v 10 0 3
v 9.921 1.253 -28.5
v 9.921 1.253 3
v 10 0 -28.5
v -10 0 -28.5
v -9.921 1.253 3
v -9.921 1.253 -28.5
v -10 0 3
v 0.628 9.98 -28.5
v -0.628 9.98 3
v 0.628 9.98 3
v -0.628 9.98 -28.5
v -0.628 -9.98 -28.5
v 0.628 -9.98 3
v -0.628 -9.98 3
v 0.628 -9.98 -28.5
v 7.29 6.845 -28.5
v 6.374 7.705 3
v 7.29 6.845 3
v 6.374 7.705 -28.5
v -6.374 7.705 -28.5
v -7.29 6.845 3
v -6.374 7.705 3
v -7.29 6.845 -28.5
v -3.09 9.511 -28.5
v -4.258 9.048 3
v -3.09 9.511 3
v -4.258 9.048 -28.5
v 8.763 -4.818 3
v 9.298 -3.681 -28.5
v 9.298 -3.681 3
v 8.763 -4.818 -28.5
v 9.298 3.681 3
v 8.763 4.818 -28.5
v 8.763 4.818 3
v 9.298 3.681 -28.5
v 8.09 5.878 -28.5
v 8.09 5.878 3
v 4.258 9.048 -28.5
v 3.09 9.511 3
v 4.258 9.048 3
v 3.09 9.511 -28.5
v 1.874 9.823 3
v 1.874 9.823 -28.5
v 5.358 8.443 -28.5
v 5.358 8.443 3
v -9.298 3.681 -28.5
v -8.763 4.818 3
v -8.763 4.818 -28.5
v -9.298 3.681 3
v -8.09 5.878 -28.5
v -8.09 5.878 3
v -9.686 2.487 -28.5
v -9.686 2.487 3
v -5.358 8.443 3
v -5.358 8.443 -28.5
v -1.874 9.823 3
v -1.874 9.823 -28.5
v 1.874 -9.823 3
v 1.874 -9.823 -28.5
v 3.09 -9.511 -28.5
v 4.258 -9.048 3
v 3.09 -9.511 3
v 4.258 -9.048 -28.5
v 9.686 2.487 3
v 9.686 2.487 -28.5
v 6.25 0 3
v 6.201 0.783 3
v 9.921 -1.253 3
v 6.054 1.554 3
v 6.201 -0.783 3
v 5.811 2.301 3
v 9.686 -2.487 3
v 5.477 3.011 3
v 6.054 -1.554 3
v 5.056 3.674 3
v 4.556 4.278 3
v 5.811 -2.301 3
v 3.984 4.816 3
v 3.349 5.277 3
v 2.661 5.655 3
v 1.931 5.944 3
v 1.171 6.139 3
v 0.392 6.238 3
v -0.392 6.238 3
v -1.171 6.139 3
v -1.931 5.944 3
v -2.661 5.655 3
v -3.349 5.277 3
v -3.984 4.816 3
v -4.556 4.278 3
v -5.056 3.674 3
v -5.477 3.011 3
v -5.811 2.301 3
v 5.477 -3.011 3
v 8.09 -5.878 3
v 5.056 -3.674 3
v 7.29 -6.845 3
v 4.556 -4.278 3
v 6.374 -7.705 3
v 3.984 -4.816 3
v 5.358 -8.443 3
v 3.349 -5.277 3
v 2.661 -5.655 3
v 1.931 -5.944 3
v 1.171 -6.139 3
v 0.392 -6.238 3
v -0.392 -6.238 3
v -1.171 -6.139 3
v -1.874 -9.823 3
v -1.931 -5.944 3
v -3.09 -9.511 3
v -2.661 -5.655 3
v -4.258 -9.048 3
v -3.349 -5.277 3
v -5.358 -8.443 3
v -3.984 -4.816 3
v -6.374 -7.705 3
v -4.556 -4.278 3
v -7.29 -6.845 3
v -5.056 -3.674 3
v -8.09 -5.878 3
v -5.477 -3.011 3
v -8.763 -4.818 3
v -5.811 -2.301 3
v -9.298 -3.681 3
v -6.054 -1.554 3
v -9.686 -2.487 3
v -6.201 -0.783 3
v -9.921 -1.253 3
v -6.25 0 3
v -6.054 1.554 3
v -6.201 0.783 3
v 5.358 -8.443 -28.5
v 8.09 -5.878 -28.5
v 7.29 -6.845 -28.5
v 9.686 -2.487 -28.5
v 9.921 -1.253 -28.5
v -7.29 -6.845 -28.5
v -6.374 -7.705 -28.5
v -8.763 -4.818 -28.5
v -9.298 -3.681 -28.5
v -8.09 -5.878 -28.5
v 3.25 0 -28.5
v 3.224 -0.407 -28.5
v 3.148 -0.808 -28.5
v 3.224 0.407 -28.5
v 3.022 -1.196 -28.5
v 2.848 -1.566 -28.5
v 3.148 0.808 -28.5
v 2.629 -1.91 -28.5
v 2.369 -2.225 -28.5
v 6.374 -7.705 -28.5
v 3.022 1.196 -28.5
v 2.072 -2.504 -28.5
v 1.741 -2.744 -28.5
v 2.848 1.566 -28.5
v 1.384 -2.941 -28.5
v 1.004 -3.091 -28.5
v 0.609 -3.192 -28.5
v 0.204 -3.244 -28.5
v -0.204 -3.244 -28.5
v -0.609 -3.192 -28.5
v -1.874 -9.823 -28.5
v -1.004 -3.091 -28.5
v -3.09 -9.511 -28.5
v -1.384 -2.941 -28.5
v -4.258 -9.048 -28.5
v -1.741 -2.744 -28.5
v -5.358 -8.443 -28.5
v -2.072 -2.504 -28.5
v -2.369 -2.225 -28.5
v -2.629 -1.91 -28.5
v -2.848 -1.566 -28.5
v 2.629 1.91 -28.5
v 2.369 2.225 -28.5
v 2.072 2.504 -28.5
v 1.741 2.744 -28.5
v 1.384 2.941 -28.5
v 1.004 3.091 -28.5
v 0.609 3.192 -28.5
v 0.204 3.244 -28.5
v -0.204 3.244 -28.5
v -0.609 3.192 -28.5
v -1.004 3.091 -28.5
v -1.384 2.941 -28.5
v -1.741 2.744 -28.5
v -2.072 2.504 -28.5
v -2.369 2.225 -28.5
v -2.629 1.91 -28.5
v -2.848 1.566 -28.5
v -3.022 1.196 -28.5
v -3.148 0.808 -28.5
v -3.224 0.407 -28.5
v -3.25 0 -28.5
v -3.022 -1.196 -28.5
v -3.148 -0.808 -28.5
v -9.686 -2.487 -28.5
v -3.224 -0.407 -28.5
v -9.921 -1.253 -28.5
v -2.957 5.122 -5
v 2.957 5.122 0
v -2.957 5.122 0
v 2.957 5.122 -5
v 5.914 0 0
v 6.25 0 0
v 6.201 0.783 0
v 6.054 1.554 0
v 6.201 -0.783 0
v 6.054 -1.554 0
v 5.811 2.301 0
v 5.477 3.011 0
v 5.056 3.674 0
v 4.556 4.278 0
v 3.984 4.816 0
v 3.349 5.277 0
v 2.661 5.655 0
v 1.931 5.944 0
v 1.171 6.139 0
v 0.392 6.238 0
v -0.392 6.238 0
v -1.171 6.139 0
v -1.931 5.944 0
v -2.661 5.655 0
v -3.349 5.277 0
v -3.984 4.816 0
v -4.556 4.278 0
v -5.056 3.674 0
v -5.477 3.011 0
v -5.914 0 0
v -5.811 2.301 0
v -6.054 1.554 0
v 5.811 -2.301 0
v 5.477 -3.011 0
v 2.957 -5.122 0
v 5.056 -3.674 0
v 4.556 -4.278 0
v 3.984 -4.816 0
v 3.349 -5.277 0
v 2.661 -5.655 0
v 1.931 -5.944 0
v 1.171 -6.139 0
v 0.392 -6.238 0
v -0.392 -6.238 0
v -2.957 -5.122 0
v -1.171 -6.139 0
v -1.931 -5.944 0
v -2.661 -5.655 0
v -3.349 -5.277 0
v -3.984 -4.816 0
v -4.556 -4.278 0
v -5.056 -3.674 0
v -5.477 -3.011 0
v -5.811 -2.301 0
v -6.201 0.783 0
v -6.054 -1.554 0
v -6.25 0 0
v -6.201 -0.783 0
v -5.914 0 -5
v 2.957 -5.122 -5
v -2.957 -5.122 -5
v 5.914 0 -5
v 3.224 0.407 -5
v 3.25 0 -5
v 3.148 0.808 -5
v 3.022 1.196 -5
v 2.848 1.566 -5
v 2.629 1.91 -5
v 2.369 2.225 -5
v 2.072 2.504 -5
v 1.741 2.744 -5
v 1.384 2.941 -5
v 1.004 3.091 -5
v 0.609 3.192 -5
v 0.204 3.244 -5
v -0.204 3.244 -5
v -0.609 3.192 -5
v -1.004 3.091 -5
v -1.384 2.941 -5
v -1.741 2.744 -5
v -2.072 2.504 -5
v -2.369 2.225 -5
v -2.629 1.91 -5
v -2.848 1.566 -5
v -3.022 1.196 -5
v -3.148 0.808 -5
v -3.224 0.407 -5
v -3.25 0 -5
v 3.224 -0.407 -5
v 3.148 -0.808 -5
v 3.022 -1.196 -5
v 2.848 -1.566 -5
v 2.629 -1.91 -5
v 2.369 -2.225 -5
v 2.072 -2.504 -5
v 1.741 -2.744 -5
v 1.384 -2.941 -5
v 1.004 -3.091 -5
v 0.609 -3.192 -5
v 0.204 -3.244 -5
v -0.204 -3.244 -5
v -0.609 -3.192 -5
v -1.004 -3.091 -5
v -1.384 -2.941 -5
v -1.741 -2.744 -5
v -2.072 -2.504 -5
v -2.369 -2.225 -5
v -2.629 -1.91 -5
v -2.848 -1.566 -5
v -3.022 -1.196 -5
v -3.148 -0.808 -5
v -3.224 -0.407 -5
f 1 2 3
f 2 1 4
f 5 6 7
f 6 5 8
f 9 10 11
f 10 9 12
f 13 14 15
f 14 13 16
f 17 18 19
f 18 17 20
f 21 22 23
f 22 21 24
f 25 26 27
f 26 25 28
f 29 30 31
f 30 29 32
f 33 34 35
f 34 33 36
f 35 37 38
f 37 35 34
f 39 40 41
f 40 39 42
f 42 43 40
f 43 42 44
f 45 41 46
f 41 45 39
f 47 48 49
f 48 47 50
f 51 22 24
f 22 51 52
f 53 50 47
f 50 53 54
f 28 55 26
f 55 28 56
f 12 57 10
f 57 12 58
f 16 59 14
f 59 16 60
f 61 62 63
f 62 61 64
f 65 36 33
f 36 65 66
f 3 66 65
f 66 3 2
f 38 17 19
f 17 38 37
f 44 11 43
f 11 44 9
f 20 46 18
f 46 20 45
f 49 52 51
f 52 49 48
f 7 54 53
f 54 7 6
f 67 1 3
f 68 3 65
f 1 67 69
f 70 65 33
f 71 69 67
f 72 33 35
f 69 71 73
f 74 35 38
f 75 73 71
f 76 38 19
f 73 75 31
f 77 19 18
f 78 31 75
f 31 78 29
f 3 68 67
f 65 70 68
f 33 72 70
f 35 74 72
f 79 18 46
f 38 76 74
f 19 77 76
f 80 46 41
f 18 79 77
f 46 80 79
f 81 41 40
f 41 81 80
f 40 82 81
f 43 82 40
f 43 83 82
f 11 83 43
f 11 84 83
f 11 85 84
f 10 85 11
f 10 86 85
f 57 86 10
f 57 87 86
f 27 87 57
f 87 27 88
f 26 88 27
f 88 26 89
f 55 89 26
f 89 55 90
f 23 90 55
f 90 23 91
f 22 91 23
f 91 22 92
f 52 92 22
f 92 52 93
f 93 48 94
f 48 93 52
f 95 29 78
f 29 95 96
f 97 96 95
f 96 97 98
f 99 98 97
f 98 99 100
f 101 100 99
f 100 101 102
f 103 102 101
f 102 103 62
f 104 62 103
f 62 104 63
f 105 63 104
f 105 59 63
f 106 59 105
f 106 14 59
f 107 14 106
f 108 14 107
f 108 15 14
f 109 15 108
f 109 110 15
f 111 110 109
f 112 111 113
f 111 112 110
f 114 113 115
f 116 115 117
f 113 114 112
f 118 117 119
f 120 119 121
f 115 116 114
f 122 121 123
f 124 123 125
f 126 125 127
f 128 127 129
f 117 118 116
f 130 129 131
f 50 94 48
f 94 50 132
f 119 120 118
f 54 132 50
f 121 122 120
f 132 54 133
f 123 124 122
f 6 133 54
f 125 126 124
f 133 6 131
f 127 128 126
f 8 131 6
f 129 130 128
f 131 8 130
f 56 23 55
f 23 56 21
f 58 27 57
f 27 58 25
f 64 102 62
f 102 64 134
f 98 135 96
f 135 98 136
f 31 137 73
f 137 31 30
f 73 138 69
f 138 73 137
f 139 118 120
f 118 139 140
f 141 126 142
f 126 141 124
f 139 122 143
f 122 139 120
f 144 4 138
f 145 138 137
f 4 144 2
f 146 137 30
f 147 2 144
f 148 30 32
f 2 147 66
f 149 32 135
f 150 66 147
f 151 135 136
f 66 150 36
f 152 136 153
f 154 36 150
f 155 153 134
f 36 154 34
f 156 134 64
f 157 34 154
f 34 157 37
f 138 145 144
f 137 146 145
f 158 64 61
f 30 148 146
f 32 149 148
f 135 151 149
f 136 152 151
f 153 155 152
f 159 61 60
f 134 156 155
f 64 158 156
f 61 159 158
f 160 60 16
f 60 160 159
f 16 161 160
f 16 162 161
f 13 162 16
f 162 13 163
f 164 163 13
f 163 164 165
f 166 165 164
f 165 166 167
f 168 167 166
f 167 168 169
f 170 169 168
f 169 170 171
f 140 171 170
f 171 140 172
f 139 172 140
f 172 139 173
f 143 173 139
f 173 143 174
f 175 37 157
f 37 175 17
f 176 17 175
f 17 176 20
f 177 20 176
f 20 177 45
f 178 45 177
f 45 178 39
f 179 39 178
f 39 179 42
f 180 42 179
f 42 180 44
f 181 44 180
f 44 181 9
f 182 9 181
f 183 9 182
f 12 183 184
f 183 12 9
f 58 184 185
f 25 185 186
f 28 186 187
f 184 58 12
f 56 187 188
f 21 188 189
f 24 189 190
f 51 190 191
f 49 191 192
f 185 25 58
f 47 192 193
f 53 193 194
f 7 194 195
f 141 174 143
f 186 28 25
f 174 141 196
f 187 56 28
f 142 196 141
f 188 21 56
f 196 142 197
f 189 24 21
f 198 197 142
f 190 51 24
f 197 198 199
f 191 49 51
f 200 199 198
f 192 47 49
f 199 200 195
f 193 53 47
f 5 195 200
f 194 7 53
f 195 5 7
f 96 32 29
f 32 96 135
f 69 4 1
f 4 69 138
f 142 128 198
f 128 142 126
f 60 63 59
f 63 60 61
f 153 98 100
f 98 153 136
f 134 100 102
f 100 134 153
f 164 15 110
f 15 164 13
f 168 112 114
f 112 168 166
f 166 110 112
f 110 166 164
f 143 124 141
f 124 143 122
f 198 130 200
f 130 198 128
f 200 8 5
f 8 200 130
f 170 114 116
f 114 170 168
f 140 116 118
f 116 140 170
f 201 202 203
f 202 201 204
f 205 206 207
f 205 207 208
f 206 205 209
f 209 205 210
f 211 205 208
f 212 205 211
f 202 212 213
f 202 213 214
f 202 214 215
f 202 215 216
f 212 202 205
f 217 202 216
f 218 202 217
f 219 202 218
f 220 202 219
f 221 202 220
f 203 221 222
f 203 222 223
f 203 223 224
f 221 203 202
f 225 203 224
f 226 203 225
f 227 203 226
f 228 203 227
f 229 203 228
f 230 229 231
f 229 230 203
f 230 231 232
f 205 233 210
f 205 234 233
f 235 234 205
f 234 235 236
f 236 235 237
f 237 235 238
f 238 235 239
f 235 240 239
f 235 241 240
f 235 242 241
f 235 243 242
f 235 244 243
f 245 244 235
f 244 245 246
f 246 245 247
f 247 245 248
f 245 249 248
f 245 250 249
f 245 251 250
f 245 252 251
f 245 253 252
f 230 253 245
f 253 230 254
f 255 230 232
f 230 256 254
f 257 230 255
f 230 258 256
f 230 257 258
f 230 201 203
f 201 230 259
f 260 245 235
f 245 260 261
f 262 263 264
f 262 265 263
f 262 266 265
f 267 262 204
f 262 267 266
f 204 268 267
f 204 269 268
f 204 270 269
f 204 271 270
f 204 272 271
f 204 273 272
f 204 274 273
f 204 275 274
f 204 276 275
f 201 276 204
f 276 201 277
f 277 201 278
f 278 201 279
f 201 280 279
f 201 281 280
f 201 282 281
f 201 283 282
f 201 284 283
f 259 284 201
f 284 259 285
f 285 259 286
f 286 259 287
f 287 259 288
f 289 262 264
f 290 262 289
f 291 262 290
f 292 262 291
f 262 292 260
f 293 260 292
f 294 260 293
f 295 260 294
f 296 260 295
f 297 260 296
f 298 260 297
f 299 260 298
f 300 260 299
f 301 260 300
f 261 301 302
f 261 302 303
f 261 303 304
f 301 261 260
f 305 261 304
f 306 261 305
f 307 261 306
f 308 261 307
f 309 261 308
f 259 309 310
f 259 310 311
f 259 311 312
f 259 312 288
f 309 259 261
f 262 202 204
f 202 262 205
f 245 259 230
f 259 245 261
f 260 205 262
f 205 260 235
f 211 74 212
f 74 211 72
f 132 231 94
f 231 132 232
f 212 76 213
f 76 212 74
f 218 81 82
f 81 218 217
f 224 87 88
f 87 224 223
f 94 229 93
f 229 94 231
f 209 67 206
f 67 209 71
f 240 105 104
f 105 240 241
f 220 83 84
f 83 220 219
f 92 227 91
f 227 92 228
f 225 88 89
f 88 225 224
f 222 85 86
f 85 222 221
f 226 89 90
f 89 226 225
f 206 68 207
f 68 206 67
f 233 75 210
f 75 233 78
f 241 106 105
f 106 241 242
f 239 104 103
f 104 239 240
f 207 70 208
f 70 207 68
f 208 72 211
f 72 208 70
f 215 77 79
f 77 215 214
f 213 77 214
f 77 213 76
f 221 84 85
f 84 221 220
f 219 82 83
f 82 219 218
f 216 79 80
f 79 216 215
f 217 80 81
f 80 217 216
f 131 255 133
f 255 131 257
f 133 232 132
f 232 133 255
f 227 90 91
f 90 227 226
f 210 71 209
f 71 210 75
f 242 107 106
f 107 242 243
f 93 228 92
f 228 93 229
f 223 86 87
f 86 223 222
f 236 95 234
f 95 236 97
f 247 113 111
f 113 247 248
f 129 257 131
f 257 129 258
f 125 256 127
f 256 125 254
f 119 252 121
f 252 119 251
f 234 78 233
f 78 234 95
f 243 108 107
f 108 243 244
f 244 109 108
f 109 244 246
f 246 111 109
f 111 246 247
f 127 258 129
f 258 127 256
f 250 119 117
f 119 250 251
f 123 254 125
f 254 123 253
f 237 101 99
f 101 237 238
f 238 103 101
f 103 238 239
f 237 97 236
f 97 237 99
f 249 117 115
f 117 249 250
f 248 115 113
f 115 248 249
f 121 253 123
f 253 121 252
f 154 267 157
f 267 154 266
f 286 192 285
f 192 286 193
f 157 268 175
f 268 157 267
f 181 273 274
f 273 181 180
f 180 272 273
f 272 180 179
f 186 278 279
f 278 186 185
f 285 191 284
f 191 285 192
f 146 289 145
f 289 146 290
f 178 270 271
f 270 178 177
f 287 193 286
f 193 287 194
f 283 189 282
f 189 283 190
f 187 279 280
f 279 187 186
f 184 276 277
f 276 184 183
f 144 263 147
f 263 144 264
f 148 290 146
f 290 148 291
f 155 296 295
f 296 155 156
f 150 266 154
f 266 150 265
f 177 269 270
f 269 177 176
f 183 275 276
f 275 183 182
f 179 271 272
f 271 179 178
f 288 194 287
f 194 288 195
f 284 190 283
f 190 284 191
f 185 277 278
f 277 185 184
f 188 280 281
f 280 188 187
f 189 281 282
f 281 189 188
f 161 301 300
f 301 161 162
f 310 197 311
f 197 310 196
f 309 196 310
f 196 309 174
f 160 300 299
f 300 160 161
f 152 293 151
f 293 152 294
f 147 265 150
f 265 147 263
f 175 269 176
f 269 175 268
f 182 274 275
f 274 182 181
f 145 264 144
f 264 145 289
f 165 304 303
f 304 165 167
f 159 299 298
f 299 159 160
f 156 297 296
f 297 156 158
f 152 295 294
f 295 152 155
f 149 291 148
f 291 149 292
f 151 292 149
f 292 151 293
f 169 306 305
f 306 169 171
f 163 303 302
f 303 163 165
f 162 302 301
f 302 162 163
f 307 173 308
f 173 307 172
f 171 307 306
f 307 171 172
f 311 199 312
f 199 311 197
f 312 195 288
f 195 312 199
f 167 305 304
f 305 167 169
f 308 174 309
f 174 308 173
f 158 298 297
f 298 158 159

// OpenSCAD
$fn = 50;

difference() {
	union() {
		translate(v = [0, 0, -28.5]) {
			cylinder(h = 31.5, r = 10.0);
		}
		#translate(v = [0, 0, -30.0]) {
			cylinder(h = 30, r = 2.875);
		}
	}
	union() {
		translate(v = [0, 0, 0]) {
			rotate(a = [0, 0, 0]) {
				difference() {
					union() {
						translate(v = [0, 0, -5]) {
							linear_extrude(height = 5) {
								polygon(points = [[5.914249999999999, 0.0], [2.957125, 5.1218907443321156], [-2.9571249999999982, 5.1218907443321156], [-5.914249999999999, 7.242867331857232e-16], [-2.9571250000000022, -5.121890744332115], [2.9571249999999956, -5.121890744332118]]);
							}
						}
					}
					union();
				}
			}
		}
		#cylinder(h = 3, r = 6.25);
		#translate(v = [0, 0, -100.0]) {
			cylinder(h = 200, r = 3.25);
		}
	}
}
